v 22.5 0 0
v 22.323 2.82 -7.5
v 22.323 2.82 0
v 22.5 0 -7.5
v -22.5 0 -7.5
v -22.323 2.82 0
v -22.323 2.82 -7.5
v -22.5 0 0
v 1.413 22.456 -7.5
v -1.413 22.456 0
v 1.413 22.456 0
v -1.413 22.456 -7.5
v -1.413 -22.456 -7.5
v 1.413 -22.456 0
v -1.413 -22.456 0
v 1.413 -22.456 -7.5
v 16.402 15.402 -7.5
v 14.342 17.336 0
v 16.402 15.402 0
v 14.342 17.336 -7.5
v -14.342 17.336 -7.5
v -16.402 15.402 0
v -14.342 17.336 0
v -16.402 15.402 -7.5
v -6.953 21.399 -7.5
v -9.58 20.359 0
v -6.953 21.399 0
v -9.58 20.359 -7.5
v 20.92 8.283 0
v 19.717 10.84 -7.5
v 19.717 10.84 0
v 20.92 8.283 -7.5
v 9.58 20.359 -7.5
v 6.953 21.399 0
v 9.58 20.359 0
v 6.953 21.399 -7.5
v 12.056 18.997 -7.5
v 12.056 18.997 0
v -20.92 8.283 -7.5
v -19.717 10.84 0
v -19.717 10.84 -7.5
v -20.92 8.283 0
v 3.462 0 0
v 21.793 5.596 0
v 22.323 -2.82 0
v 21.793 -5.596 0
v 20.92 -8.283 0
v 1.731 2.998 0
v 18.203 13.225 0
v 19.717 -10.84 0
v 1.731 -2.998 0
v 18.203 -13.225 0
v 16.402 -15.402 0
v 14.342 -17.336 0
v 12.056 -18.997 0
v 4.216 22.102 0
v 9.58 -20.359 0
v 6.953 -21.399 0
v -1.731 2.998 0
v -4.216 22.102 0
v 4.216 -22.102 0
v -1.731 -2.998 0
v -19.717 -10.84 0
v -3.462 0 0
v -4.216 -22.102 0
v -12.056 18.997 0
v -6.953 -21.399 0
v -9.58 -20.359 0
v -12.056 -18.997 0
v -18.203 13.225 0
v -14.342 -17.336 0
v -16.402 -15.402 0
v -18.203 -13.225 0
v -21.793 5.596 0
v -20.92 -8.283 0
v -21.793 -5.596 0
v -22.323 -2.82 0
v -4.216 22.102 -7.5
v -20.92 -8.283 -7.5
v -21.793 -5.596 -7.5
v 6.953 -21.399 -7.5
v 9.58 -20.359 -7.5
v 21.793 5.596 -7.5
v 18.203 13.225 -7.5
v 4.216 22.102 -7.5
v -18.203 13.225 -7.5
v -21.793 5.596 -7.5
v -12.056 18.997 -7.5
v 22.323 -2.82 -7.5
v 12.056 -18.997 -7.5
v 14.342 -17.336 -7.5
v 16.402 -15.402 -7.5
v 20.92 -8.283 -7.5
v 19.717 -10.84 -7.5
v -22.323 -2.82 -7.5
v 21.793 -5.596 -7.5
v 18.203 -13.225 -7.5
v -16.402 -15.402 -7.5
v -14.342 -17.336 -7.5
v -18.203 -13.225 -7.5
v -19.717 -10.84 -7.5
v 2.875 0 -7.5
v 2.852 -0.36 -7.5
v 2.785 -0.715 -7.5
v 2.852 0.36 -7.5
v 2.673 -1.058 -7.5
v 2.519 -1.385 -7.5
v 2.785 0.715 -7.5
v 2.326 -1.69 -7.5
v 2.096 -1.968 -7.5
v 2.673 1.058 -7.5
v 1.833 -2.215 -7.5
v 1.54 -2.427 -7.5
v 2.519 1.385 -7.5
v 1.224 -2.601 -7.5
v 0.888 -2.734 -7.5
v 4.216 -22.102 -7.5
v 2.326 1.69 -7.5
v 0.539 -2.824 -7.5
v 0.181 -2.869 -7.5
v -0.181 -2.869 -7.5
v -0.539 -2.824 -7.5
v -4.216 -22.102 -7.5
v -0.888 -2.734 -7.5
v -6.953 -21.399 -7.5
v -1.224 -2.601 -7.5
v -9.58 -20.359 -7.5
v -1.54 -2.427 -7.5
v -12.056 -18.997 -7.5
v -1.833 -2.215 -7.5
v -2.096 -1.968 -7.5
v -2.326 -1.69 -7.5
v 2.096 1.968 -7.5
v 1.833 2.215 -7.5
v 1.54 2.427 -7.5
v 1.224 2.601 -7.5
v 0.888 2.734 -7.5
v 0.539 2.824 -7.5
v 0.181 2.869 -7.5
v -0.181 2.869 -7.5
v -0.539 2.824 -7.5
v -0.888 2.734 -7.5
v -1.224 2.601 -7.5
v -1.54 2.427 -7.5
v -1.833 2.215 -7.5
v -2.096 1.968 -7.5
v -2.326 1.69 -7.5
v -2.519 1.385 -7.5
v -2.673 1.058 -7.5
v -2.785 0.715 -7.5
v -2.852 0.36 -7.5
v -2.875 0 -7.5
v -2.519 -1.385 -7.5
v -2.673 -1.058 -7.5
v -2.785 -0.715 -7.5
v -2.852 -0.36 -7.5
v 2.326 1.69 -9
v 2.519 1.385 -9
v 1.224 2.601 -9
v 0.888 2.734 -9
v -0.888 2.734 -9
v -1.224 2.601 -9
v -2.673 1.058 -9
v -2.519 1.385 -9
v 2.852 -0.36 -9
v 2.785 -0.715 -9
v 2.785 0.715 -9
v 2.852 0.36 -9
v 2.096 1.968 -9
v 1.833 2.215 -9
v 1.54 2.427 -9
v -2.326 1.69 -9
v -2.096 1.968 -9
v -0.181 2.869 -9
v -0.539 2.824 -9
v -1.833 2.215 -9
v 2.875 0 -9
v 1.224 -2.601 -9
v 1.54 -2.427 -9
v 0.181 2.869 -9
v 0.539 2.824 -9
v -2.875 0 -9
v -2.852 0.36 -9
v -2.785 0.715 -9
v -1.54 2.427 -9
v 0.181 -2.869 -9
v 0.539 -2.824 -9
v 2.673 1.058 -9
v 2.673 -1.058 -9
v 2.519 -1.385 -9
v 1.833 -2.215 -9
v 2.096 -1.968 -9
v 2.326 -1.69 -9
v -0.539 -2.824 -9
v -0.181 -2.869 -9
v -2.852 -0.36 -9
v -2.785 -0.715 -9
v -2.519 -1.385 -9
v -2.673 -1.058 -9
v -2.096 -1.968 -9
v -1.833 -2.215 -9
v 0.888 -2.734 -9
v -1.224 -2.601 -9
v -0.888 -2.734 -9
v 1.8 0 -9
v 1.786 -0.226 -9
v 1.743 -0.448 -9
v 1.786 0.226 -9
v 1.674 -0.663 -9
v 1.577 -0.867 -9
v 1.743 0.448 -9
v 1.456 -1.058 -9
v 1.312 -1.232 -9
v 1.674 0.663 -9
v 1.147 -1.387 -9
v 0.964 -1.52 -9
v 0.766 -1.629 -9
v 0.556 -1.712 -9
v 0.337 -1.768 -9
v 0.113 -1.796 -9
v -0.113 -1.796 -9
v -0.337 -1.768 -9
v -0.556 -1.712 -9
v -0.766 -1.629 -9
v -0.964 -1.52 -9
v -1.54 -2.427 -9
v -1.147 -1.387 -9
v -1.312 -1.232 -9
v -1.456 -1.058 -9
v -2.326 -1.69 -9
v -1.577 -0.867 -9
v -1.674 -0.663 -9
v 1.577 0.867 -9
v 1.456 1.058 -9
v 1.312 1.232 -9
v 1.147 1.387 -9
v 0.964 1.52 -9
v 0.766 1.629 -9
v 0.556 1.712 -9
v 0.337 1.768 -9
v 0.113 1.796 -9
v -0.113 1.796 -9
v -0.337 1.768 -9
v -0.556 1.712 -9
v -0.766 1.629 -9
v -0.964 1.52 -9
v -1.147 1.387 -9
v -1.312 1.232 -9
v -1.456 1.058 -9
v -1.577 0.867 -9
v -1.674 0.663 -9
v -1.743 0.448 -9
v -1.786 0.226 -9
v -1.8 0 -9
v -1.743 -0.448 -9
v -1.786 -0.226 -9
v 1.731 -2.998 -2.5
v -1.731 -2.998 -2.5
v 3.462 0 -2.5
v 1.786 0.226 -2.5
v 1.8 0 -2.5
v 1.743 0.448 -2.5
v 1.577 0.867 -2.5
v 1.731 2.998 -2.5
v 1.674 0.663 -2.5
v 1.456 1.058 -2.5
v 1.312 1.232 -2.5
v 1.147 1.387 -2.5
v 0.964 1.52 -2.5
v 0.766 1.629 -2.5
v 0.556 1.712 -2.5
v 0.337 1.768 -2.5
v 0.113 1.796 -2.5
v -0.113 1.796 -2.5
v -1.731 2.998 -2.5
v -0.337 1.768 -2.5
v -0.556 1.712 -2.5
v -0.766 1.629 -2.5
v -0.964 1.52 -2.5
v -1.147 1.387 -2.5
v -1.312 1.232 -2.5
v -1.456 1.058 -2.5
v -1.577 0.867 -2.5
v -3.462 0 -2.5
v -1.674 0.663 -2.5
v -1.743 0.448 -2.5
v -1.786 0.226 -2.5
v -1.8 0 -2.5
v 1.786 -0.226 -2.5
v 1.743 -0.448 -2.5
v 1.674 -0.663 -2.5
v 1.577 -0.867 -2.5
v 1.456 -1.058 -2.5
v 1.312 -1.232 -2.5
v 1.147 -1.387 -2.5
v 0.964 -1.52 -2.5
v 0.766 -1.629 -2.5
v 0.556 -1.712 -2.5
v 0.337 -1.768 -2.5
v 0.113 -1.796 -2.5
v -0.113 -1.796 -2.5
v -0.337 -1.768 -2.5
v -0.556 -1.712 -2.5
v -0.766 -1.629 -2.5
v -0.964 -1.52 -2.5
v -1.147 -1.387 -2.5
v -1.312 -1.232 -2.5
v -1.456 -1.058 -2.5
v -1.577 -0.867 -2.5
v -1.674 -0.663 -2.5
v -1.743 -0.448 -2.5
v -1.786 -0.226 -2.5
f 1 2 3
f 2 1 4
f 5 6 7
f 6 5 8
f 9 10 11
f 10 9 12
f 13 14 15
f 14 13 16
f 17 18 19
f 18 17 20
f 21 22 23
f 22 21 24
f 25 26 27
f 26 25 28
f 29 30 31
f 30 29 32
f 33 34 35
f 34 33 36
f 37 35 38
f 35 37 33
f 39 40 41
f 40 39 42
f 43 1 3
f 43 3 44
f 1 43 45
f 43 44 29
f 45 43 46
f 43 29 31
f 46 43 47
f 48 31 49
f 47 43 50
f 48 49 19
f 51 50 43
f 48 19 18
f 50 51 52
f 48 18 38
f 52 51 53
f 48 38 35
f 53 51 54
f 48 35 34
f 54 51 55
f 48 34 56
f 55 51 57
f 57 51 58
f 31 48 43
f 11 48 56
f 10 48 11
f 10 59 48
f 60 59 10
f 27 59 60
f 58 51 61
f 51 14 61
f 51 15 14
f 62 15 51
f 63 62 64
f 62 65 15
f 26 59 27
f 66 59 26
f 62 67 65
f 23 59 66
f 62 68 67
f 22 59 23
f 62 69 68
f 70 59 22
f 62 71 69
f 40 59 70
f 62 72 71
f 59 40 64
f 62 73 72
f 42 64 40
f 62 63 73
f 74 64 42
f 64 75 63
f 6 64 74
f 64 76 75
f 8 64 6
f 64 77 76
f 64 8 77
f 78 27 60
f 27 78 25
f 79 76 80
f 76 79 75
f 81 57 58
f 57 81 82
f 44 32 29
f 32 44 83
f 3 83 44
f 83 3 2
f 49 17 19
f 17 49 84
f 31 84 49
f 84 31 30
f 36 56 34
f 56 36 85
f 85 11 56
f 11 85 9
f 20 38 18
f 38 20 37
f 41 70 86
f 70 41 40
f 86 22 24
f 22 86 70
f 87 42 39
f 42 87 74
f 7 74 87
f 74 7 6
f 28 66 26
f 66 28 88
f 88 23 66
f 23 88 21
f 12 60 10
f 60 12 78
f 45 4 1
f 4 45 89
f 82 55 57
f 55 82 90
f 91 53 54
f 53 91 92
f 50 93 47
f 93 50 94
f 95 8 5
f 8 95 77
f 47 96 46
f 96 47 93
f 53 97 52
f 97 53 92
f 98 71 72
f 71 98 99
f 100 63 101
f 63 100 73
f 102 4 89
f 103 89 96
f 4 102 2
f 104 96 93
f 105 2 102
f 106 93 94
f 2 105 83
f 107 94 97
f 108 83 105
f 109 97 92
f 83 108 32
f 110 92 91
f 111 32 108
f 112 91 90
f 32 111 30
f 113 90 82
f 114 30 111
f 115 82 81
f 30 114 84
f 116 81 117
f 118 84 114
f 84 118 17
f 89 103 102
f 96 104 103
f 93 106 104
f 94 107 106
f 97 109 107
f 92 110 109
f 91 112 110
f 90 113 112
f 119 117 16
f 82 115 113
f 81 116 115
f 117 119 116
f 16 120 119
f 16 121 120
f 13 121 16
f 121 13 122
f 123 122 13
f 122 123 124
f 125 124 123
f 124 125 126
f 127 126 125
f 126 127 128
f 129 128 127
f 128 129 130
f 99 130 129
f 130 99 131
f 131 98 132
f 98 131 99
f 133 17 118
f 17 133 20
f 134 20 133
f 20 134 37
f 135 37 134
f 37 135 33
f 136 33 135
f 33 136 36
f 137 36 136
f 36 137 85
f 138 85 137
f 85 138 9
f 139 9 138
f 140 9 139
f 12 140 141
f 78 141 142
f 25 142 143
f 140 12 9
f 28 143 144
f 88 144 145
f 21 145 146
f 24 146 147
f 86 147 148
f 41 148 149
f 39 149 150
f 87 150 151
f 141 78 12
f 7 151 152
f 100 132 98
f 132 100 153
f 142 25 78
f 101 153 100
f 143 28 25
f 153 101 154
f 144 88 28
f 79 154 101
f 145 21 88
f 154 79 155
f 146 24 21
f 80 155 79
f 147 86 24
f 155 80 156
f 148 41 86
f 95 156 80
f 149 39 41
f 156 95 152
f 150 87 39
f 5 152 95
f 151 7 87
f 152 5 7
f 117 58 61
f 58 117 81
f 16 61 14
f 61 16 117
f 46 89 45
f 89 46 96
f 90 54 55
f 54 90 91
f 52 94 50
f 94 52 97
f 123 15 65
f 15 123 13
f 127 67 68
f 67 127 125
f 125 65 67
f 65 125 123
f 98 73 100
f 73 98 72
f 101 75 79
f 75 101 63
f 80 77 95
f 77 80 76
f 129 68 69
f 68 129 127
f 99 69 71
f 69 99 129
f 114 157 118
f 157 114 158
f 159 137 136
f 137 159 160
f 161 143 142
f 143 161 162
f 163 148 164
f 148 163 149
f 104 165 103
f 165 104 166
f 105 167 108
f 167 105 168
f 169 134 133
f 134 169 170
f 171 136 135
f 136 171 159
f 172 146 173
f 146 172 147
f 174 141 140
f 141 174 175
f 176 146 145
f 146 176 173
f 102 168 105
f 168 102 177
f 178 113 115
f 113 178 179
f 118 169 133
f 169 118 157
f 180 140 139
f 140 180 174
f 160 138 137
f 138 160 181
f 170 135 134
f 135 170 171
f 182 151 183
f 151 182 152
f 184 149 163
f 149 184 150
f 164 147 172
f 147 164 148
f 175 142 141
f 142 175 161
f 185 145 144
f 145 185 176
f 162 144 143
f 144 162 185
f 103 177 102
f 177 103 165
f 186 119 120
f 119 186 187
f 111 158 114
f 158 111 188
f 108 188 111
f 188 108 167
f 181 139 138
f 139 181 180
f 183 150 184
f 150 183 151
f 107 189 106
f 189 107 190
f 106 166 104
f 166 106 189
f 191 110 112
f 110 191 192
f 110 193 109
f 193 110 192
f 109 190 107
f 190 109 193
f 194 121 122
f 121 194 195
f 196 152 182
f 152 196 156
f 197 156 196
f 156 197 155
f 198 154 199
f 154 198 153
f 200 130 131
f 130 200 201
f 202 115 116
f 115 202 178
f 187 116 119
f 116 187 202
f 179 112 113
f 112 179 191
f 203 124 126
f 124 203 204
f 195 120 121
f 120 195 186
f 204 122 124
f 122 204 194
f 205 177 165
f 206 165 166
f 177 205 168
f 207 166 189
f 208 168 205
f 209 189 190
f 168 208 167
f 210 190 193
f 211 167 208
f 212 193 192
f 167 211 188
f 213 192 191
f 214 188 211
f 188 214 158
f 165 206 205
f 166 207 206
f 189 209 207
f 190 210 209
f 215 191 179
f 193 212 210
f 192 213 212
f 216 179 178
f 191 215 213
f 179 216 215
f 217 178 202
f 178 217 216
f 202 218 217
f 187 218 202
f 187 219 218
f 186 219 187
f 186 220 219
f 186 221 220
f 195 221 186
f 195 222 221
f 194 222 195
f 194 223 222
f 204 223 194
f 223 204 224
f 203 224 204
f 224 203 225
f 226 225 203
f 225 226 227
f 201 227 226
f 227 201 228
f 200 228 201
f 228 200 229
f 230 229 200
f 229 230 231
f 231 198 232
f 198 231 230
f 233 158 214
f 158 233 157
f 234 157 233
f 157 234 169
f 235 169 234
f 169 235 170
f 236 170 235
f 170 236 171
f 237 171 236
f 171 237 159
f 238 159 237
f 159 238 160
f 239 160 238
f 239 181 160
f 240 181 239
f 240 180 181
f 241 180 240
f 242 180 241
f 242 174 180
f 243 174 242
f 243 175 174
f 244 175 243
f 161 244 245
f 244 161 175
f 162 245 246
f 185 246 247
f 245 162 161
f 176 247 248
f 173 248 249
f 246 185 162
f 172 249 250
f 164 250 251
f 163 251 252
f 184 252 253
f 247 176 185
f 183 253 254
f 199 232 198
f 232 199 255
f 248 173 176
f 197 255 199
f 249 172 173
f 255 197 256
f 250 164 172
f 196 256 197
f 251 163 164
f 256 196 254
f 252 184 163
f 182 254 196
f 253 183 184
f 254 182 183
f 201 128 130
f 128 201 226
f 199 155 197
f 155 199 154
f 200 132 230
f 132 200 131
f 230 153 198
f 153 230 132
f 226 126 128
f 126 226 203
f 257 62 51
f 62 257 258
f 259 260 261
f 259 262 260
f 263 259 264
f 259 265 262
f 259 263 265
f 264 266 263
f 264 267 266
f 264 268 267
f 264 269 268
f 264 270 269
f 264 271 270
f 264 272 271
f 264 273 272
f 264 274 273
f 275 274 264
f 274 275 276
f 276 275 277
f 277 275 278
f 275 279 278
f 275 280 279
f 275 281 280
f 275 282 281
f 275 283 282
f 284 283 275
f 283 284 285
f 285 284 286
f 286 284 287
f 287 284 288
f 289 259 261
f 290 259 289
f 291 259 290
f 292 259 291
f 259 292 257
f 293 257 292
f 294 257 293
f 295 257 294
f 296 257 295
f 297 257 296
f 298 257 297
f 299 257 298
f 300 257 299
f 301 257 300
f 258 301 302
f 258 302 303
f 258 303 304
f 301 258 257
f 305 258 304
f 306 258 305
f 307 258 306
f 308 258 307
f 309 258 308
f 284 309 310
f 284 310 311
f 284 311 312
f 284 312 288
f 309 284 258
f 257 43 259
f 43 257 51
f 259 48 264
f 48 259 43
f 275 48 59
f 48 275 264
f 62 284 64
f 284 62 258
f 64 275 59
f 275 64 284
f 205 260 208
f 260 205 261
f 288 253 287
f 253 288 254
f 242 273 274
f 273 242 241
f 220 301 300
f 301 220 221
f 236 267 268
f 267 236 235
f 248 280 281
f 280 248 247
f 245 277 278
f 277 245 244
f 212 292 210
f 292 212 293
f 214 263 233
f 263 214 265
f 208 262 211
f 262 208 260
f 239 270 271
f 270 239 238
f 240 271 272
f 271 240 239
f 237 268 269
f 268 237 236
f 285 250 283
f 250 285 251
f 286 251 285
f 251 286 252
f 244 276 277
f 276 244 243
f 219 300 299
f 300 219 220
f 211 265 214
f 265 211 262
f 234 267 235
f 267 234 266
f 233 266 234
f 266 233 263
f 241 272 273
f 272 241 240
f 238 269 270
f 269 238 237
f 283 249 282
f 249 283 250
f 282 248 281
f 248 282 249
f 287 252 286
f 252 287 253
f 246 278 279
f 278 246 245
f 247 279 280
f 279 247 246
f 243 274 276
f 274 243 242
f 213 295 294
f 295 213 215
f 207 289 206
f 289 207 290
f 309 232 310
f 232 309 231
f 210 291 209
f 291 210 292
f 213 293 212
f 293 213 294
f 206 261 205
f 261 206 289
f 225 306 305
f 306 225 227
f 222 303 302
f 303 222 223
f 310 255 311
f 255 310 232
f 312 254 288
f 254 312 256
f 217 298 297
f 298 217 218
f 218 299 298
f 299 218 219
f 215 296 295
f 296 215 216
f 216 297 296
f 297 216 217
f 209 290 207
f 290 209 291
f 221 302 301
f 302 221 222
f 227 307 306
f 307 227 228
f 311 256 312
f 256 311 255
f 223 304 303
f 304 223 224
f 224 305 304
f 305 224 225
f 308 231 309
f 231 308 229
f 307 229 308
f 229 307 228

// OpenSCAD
$fn = 50;


difference() {
	union() {
		translate(v = [0, 0, -7.5000000000]) {
			cylinder(h = 7.5000000000, r = 22.5000000000);
		}
		translate(v = [0, 0, -9.0000000000]) {
			cylinder(h = 9, r = 2.8750000000);
		}
	}
	union() {
		translate(v = [0, 0, 0]) {
			rotate(a = [0, 0, 0]) {
				difference() {
					union() {
						translate(v = [0, 0, -2.5000000000]) {
							linear_extrude(height = 2.5000000000) {
								polygon(points = [[3.4620000000, 0.0000000000], [1.7310000000, 2.9981799479], [-1.7310000000, 2.9981799479], [-3.4620000000, 0.0000000000], [-1.7310000000, -2.9981799479], [1.7310000000, -2.9981799479]]);
							}
						}
					}
					union();
				}
			}
		}
		#translate(v = [0, 0, -100.0000000000]) {
			cylinder(h = 200, r = 1.8000000000);
		}
	}
}
